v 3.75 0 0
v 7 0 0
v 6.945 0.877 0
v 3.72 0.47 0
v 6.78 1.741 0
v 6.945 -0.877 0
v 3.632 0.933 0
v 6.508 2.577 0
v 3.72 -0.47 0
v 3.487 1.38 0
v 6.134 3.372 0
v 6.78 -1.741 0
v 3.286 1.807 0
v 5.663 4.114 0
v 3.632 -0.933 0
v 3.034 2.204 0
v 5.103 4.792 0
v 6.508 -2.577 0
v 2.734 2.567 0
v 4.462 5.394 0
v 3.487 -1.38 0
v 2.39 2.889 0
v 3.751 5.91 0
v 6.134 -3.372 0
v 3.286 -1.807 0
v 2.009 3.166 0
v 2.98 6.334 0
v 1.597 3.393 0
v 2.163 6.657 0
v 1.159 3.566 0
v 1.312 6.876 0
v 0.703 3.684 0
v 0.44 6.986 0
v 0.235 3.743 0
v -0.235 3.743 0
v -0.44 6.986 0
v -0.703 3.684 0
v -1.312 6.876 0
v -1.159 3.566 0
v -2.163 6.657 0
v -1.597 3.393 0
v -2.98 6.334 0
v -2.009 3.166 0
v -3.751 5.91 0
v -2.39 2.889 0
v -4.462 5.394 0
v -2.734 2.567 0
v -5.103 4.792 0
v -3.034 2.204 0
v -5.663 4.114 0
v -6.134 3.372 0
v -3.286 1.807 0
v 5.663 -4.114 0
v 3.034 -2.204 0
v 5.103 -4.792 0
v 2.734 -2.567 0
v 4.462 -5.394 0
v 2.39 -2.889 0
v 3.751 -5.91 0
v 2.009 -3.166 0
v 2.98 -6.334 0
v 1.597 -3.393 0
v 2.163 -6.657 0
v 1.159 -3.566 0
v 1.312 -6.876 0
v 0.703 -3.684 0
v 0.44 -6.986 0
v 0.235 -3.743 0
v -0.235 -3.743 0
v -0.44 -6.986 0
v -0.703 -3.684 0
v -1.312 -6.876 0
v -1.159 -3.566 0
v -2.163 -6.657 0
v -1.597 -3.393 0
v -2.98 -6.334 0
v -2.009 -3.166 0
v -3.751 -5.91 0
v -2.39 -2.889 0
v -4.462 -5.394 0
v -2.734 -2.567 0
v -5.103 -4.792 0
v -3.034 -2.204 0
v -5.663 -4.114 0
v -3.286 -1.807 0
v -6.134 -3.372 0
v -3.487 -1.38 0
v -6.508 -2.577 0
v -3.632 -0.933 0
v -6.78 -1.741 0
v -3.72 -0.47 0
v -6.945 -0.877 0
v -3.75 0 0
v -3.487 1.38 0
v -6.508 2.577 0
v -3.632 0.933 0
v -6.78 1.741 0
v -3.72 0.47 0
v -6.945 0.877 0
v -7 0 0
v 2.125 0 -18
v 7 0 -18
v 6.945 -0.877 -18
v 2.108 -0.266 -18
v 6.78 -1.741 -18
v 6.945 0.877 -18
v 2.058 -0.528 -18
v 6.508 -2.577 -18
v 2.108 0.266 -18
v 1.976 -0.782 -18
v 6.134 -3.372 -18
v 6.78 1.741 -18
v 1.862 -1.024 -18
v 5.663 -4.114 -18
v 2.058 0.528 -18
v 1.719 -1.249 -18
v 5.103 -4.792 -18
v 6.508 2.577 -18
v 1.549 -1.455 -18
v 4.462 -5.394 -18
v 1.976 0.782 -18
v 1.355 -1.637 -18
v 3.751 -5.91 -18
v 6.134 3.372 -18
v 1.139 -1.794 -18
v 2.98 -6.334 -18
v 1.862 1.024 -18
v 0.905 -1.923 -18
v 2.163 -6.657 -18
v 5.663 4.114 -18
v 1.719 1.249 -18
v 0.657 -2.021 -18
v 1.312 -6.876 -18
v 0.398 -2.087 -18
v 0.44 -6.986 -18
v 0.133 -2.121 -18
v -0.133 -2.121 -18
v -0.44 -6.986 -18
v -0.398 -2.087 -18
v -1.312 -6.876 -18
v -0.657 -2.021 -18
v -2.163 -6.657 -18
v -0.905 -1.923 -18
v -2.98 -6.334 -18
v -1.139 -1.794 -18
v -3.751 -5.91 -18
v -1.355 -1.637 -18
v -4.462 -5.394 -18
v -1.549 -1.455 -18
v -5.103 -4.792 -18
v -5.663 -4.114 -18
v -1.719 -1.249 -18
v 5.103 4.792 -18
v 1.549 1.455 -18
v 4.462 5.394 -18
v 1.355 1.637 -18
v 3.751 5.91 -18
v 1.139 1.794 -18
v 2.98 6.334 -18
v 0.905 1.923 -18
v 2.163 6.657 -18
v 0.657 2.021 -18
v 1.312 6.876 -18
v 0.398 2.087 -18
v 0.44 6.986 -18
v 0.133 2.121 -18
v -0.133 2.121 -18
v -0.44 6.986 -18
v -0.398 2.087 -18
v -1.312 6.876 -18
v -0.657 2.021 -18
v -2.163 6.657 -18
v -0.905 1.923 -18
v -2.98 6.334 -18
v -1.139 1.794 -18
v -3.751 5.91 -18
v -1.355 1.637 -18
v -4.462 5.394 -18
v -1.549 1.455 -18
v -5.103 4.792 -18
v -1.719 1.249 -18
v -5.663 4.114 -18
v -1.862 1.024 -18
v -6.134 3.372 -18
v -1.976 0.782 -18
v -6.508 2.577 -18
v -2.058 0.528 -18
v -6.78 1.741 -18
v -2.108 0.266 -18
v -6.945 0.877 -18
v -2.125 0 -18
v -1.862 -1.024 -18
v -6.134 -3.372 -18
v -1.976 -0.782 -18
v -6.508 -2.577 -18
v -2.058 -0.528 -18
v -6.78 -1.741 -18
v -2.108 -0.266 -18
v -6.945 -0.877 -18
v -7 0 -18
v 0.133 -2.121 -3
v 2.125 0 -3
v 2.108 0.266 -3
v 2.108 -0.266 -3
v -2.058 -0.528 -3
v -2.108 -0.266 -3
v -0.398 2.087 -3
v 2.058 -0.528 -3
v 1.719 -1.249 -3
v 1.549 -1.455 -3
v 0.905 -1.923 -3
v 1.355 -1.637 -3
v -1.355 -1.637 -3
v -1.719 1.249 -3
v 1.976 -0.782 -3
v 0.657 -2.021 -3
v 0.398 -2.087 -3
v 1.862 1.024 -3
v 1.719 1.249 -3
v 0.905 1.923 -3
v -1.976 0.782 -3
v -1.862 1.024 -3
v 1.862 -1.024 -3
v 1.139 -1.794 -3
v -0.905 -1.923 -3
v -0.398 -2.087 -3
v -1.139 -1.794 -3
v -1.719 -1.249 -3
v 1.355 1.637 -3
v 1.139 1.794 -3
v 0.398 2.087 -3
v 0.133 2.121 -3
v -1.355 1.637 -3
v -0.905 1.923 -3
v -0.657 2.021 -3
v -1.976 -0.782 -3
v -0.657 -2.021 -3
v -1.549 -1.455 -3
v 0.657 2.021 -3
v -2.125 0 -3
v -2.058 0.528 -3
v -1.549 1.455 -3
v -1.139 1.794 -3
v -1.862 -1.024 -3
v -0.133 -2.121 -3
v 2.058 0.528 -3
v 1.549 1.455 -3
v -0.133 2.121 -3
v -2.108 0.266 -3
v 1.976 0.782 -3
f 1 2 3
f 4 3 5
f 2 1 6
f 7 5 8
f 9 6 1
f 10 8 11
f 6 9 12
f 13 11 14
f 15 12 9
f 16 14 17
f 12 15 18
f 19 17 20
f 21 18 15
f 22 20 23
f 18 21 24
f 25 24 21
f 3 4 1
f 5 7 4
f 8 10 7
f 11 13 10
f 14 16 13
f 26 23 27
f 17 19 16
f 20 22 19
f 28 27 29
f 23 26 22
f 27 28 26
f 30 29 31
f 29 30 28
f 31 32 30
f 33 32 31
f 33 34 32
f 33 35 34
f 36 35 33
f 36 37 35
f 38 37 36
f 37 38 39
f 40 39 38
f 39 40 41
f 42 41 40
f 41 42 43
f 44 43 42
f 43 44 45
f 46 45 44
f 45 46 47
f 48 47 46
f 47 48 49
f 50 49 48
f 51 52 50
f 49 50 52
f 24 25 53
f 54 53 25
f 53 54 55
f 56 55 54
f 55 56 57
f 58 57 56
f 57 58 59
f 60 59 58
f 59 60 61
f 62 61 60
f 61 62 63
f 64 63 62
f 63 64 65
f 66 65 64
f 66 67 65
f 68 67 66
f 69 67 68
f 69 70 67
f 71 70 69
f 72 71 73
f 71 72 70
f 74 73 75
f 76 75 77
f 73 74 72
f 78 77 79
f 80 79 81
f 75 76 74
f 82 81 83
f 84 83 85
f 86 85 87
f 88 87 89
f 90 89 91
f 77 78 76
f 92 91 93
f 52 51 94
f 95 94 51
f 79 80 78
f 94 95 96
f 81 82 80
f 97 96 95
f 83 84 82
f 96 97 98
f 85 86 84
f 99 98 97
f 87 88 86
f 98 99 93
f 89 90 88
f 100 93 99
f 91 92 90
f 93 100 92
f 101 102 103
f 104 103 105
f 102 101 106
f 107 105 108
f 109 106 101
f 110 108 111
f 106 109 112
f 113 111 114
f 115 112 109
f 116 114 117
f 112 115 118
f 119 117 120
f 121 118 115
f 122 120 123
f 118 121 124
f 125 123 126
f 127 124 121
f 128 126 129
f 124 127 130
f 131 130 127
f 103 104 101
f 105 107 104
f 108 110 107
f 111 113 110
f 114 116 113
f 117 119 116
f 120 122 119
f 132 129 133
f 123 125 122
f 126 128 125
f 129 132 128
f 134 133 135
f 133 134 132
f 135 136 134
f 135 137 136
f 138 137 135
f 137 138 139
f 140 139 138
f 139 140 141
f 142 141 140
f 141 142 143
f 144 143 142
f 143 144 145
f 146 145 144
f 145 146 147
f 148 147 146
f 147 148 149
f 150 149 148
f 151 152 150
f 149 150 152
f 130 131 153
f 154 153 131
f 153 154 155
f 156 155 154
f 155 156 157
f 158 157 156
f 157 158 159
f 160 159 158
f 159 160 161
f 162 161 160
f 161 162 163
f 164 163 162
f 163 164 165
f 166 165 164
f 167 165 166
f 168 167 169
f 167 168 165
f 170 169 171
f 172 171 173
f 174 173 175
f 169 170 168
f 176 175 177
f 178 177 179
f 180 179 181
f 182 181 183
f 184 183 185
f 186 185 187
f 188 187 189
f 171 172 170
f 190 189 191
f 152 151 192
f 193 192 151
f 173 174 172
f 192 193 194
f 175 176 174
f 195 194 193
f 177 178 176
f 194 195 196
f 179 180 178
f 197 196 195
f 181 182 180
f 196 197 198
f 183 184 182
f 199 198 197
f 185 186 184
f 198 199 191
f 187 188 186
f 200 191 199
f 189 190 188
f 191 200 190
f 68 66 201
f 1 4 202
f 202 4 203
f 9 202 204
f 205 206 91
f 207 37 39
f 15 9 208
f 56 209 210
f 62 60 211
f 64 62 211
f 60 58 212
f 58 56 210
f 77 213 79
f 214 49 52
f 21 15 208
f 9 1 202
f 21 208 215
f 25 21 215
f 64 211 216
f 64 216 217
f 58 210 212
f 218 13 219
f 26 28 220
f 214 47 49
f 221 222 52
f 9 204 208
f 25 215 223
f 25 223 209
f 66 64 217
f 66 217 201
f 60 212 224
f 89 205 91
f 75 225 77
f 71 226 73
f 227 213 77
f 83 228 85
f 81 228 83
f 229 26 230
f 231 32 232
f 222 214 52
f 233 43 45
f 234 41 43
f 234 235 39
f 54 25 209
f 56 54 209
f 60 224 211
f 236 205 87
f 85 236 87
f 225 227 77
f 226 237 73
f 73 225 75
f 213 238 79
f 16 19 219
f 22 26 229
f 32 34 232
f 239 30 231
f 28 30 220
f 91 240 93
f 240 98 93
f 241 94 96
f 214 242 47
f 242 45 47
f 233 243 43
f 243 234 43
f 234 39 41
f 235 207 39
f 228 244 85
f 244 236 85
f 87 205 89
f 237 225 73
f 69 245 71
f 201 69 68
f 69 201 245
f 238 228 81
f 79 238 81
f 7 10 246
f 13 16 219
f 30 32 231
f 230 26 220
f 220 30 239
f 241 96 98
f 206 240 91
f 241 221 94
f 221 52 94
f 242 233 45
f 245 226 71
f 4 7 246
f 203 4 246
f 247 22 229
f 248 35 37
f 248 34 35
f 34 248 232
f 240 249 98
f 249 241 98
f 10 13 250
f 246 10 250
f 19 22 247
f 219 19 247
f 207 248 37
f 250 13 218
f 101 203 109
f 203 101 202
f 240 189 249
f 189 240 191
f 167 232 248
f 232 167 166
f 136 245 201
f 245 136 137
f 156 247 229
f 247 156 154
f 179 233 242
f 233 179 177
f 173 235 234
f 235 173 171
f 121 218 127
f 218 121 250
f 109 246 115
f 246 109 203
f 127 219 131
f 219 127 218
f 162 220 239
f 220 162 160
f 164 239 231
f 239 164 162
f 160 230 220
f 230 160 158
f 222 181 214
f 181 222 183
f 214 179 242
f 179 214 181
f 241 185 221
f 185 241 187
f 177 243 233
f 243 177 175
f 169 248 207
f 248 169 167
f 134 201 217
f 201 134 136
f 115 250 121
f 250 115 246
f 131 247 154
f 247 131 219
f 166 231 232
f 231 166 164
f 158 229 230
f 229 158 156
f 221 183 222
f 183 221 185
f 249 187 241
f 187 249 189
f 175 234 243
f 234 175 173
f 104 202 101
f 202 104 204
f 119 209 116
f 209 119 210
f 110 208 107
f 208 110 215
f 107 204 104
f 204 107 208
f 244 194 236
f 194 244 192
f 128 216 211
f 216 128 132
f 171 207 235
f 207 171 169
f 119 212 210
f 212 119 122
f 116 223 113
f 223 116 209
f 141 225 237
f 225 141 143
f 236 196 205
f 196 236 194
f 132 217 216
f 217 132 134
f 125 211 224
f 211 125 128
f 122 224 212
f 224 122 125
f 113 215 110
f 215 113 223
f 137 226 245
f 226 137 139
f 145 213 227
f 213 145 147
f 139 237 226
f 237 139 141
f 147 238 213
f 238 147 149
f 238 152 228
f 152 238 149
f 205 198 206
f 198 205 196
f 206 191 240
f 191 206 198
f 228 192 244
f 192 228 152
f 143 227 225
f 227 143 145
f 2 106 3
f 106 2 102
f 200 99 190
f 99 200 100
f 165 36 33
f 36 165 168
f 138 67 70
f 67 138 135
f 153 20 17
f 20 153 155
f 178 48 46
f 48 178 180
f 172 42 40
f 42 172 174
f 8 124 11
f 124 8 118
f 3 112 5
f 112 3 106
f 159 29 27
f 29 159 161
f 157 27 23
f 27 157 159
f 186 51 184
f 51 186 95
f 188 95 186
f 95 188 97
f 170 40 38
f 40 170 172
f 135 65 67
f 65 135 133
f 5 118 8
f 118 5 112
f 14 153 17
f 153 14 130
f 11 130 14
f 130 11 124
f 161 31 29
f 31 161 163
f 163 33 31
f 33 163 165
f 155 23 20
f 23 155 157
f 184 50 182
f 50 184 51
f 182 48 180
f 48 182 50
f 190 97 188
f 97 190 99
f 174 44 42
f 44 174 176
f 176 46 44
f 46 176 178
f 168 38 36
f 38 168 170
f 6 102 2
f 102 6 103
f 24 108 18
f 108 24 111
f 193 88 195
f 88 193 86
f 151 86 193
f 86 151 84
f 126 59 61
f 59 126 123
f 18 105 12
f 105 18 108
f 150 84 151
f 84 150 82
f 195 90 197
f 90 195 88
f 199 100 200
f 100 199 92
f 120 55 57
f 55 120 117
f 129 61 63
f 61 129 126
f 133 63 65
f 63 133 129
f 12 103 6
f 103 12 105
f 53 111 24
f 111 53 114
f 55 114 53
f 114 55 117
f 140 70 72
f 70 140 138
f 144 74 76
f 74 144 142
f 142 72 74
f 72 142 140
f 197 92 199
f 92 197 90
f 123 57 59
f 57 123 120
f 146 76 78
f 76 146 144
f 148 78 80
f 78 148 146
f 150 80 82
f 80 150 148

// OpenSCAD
$fn = 50;


difference() {
	union() {
		translate(v = [0, 0, -18.0000000000]) {
			cylinder(h = 18, r = 7.0000000000);
		}
	}
	union() {
		translate(v = [0, 0, 0]) {
			rotate(a = [0, 0, 0]) {
				difference() {
					union() {
						#translate(v = [0, 0, -18.0000000000]) {
							cylinder(h = 18, r = 2.0000000000);
						}
						#translate(v = [0, 0, -3]) {
							cylinder(h = 3, r = 7.0000000000, r1 = 2.1250000000, r2 = 3.7500000000);
						}
						#translate(v = [0, 0, -18.0000000000]) {
							cylinder(h = 18, r = 2.1250000000);
						}
						#translate(v = [0, 0, -18.0000000000]) {
							cylinder(h = 18, r = 2.0000000000);
						}
					}
					union();
				}
			}
		}
	}
}
